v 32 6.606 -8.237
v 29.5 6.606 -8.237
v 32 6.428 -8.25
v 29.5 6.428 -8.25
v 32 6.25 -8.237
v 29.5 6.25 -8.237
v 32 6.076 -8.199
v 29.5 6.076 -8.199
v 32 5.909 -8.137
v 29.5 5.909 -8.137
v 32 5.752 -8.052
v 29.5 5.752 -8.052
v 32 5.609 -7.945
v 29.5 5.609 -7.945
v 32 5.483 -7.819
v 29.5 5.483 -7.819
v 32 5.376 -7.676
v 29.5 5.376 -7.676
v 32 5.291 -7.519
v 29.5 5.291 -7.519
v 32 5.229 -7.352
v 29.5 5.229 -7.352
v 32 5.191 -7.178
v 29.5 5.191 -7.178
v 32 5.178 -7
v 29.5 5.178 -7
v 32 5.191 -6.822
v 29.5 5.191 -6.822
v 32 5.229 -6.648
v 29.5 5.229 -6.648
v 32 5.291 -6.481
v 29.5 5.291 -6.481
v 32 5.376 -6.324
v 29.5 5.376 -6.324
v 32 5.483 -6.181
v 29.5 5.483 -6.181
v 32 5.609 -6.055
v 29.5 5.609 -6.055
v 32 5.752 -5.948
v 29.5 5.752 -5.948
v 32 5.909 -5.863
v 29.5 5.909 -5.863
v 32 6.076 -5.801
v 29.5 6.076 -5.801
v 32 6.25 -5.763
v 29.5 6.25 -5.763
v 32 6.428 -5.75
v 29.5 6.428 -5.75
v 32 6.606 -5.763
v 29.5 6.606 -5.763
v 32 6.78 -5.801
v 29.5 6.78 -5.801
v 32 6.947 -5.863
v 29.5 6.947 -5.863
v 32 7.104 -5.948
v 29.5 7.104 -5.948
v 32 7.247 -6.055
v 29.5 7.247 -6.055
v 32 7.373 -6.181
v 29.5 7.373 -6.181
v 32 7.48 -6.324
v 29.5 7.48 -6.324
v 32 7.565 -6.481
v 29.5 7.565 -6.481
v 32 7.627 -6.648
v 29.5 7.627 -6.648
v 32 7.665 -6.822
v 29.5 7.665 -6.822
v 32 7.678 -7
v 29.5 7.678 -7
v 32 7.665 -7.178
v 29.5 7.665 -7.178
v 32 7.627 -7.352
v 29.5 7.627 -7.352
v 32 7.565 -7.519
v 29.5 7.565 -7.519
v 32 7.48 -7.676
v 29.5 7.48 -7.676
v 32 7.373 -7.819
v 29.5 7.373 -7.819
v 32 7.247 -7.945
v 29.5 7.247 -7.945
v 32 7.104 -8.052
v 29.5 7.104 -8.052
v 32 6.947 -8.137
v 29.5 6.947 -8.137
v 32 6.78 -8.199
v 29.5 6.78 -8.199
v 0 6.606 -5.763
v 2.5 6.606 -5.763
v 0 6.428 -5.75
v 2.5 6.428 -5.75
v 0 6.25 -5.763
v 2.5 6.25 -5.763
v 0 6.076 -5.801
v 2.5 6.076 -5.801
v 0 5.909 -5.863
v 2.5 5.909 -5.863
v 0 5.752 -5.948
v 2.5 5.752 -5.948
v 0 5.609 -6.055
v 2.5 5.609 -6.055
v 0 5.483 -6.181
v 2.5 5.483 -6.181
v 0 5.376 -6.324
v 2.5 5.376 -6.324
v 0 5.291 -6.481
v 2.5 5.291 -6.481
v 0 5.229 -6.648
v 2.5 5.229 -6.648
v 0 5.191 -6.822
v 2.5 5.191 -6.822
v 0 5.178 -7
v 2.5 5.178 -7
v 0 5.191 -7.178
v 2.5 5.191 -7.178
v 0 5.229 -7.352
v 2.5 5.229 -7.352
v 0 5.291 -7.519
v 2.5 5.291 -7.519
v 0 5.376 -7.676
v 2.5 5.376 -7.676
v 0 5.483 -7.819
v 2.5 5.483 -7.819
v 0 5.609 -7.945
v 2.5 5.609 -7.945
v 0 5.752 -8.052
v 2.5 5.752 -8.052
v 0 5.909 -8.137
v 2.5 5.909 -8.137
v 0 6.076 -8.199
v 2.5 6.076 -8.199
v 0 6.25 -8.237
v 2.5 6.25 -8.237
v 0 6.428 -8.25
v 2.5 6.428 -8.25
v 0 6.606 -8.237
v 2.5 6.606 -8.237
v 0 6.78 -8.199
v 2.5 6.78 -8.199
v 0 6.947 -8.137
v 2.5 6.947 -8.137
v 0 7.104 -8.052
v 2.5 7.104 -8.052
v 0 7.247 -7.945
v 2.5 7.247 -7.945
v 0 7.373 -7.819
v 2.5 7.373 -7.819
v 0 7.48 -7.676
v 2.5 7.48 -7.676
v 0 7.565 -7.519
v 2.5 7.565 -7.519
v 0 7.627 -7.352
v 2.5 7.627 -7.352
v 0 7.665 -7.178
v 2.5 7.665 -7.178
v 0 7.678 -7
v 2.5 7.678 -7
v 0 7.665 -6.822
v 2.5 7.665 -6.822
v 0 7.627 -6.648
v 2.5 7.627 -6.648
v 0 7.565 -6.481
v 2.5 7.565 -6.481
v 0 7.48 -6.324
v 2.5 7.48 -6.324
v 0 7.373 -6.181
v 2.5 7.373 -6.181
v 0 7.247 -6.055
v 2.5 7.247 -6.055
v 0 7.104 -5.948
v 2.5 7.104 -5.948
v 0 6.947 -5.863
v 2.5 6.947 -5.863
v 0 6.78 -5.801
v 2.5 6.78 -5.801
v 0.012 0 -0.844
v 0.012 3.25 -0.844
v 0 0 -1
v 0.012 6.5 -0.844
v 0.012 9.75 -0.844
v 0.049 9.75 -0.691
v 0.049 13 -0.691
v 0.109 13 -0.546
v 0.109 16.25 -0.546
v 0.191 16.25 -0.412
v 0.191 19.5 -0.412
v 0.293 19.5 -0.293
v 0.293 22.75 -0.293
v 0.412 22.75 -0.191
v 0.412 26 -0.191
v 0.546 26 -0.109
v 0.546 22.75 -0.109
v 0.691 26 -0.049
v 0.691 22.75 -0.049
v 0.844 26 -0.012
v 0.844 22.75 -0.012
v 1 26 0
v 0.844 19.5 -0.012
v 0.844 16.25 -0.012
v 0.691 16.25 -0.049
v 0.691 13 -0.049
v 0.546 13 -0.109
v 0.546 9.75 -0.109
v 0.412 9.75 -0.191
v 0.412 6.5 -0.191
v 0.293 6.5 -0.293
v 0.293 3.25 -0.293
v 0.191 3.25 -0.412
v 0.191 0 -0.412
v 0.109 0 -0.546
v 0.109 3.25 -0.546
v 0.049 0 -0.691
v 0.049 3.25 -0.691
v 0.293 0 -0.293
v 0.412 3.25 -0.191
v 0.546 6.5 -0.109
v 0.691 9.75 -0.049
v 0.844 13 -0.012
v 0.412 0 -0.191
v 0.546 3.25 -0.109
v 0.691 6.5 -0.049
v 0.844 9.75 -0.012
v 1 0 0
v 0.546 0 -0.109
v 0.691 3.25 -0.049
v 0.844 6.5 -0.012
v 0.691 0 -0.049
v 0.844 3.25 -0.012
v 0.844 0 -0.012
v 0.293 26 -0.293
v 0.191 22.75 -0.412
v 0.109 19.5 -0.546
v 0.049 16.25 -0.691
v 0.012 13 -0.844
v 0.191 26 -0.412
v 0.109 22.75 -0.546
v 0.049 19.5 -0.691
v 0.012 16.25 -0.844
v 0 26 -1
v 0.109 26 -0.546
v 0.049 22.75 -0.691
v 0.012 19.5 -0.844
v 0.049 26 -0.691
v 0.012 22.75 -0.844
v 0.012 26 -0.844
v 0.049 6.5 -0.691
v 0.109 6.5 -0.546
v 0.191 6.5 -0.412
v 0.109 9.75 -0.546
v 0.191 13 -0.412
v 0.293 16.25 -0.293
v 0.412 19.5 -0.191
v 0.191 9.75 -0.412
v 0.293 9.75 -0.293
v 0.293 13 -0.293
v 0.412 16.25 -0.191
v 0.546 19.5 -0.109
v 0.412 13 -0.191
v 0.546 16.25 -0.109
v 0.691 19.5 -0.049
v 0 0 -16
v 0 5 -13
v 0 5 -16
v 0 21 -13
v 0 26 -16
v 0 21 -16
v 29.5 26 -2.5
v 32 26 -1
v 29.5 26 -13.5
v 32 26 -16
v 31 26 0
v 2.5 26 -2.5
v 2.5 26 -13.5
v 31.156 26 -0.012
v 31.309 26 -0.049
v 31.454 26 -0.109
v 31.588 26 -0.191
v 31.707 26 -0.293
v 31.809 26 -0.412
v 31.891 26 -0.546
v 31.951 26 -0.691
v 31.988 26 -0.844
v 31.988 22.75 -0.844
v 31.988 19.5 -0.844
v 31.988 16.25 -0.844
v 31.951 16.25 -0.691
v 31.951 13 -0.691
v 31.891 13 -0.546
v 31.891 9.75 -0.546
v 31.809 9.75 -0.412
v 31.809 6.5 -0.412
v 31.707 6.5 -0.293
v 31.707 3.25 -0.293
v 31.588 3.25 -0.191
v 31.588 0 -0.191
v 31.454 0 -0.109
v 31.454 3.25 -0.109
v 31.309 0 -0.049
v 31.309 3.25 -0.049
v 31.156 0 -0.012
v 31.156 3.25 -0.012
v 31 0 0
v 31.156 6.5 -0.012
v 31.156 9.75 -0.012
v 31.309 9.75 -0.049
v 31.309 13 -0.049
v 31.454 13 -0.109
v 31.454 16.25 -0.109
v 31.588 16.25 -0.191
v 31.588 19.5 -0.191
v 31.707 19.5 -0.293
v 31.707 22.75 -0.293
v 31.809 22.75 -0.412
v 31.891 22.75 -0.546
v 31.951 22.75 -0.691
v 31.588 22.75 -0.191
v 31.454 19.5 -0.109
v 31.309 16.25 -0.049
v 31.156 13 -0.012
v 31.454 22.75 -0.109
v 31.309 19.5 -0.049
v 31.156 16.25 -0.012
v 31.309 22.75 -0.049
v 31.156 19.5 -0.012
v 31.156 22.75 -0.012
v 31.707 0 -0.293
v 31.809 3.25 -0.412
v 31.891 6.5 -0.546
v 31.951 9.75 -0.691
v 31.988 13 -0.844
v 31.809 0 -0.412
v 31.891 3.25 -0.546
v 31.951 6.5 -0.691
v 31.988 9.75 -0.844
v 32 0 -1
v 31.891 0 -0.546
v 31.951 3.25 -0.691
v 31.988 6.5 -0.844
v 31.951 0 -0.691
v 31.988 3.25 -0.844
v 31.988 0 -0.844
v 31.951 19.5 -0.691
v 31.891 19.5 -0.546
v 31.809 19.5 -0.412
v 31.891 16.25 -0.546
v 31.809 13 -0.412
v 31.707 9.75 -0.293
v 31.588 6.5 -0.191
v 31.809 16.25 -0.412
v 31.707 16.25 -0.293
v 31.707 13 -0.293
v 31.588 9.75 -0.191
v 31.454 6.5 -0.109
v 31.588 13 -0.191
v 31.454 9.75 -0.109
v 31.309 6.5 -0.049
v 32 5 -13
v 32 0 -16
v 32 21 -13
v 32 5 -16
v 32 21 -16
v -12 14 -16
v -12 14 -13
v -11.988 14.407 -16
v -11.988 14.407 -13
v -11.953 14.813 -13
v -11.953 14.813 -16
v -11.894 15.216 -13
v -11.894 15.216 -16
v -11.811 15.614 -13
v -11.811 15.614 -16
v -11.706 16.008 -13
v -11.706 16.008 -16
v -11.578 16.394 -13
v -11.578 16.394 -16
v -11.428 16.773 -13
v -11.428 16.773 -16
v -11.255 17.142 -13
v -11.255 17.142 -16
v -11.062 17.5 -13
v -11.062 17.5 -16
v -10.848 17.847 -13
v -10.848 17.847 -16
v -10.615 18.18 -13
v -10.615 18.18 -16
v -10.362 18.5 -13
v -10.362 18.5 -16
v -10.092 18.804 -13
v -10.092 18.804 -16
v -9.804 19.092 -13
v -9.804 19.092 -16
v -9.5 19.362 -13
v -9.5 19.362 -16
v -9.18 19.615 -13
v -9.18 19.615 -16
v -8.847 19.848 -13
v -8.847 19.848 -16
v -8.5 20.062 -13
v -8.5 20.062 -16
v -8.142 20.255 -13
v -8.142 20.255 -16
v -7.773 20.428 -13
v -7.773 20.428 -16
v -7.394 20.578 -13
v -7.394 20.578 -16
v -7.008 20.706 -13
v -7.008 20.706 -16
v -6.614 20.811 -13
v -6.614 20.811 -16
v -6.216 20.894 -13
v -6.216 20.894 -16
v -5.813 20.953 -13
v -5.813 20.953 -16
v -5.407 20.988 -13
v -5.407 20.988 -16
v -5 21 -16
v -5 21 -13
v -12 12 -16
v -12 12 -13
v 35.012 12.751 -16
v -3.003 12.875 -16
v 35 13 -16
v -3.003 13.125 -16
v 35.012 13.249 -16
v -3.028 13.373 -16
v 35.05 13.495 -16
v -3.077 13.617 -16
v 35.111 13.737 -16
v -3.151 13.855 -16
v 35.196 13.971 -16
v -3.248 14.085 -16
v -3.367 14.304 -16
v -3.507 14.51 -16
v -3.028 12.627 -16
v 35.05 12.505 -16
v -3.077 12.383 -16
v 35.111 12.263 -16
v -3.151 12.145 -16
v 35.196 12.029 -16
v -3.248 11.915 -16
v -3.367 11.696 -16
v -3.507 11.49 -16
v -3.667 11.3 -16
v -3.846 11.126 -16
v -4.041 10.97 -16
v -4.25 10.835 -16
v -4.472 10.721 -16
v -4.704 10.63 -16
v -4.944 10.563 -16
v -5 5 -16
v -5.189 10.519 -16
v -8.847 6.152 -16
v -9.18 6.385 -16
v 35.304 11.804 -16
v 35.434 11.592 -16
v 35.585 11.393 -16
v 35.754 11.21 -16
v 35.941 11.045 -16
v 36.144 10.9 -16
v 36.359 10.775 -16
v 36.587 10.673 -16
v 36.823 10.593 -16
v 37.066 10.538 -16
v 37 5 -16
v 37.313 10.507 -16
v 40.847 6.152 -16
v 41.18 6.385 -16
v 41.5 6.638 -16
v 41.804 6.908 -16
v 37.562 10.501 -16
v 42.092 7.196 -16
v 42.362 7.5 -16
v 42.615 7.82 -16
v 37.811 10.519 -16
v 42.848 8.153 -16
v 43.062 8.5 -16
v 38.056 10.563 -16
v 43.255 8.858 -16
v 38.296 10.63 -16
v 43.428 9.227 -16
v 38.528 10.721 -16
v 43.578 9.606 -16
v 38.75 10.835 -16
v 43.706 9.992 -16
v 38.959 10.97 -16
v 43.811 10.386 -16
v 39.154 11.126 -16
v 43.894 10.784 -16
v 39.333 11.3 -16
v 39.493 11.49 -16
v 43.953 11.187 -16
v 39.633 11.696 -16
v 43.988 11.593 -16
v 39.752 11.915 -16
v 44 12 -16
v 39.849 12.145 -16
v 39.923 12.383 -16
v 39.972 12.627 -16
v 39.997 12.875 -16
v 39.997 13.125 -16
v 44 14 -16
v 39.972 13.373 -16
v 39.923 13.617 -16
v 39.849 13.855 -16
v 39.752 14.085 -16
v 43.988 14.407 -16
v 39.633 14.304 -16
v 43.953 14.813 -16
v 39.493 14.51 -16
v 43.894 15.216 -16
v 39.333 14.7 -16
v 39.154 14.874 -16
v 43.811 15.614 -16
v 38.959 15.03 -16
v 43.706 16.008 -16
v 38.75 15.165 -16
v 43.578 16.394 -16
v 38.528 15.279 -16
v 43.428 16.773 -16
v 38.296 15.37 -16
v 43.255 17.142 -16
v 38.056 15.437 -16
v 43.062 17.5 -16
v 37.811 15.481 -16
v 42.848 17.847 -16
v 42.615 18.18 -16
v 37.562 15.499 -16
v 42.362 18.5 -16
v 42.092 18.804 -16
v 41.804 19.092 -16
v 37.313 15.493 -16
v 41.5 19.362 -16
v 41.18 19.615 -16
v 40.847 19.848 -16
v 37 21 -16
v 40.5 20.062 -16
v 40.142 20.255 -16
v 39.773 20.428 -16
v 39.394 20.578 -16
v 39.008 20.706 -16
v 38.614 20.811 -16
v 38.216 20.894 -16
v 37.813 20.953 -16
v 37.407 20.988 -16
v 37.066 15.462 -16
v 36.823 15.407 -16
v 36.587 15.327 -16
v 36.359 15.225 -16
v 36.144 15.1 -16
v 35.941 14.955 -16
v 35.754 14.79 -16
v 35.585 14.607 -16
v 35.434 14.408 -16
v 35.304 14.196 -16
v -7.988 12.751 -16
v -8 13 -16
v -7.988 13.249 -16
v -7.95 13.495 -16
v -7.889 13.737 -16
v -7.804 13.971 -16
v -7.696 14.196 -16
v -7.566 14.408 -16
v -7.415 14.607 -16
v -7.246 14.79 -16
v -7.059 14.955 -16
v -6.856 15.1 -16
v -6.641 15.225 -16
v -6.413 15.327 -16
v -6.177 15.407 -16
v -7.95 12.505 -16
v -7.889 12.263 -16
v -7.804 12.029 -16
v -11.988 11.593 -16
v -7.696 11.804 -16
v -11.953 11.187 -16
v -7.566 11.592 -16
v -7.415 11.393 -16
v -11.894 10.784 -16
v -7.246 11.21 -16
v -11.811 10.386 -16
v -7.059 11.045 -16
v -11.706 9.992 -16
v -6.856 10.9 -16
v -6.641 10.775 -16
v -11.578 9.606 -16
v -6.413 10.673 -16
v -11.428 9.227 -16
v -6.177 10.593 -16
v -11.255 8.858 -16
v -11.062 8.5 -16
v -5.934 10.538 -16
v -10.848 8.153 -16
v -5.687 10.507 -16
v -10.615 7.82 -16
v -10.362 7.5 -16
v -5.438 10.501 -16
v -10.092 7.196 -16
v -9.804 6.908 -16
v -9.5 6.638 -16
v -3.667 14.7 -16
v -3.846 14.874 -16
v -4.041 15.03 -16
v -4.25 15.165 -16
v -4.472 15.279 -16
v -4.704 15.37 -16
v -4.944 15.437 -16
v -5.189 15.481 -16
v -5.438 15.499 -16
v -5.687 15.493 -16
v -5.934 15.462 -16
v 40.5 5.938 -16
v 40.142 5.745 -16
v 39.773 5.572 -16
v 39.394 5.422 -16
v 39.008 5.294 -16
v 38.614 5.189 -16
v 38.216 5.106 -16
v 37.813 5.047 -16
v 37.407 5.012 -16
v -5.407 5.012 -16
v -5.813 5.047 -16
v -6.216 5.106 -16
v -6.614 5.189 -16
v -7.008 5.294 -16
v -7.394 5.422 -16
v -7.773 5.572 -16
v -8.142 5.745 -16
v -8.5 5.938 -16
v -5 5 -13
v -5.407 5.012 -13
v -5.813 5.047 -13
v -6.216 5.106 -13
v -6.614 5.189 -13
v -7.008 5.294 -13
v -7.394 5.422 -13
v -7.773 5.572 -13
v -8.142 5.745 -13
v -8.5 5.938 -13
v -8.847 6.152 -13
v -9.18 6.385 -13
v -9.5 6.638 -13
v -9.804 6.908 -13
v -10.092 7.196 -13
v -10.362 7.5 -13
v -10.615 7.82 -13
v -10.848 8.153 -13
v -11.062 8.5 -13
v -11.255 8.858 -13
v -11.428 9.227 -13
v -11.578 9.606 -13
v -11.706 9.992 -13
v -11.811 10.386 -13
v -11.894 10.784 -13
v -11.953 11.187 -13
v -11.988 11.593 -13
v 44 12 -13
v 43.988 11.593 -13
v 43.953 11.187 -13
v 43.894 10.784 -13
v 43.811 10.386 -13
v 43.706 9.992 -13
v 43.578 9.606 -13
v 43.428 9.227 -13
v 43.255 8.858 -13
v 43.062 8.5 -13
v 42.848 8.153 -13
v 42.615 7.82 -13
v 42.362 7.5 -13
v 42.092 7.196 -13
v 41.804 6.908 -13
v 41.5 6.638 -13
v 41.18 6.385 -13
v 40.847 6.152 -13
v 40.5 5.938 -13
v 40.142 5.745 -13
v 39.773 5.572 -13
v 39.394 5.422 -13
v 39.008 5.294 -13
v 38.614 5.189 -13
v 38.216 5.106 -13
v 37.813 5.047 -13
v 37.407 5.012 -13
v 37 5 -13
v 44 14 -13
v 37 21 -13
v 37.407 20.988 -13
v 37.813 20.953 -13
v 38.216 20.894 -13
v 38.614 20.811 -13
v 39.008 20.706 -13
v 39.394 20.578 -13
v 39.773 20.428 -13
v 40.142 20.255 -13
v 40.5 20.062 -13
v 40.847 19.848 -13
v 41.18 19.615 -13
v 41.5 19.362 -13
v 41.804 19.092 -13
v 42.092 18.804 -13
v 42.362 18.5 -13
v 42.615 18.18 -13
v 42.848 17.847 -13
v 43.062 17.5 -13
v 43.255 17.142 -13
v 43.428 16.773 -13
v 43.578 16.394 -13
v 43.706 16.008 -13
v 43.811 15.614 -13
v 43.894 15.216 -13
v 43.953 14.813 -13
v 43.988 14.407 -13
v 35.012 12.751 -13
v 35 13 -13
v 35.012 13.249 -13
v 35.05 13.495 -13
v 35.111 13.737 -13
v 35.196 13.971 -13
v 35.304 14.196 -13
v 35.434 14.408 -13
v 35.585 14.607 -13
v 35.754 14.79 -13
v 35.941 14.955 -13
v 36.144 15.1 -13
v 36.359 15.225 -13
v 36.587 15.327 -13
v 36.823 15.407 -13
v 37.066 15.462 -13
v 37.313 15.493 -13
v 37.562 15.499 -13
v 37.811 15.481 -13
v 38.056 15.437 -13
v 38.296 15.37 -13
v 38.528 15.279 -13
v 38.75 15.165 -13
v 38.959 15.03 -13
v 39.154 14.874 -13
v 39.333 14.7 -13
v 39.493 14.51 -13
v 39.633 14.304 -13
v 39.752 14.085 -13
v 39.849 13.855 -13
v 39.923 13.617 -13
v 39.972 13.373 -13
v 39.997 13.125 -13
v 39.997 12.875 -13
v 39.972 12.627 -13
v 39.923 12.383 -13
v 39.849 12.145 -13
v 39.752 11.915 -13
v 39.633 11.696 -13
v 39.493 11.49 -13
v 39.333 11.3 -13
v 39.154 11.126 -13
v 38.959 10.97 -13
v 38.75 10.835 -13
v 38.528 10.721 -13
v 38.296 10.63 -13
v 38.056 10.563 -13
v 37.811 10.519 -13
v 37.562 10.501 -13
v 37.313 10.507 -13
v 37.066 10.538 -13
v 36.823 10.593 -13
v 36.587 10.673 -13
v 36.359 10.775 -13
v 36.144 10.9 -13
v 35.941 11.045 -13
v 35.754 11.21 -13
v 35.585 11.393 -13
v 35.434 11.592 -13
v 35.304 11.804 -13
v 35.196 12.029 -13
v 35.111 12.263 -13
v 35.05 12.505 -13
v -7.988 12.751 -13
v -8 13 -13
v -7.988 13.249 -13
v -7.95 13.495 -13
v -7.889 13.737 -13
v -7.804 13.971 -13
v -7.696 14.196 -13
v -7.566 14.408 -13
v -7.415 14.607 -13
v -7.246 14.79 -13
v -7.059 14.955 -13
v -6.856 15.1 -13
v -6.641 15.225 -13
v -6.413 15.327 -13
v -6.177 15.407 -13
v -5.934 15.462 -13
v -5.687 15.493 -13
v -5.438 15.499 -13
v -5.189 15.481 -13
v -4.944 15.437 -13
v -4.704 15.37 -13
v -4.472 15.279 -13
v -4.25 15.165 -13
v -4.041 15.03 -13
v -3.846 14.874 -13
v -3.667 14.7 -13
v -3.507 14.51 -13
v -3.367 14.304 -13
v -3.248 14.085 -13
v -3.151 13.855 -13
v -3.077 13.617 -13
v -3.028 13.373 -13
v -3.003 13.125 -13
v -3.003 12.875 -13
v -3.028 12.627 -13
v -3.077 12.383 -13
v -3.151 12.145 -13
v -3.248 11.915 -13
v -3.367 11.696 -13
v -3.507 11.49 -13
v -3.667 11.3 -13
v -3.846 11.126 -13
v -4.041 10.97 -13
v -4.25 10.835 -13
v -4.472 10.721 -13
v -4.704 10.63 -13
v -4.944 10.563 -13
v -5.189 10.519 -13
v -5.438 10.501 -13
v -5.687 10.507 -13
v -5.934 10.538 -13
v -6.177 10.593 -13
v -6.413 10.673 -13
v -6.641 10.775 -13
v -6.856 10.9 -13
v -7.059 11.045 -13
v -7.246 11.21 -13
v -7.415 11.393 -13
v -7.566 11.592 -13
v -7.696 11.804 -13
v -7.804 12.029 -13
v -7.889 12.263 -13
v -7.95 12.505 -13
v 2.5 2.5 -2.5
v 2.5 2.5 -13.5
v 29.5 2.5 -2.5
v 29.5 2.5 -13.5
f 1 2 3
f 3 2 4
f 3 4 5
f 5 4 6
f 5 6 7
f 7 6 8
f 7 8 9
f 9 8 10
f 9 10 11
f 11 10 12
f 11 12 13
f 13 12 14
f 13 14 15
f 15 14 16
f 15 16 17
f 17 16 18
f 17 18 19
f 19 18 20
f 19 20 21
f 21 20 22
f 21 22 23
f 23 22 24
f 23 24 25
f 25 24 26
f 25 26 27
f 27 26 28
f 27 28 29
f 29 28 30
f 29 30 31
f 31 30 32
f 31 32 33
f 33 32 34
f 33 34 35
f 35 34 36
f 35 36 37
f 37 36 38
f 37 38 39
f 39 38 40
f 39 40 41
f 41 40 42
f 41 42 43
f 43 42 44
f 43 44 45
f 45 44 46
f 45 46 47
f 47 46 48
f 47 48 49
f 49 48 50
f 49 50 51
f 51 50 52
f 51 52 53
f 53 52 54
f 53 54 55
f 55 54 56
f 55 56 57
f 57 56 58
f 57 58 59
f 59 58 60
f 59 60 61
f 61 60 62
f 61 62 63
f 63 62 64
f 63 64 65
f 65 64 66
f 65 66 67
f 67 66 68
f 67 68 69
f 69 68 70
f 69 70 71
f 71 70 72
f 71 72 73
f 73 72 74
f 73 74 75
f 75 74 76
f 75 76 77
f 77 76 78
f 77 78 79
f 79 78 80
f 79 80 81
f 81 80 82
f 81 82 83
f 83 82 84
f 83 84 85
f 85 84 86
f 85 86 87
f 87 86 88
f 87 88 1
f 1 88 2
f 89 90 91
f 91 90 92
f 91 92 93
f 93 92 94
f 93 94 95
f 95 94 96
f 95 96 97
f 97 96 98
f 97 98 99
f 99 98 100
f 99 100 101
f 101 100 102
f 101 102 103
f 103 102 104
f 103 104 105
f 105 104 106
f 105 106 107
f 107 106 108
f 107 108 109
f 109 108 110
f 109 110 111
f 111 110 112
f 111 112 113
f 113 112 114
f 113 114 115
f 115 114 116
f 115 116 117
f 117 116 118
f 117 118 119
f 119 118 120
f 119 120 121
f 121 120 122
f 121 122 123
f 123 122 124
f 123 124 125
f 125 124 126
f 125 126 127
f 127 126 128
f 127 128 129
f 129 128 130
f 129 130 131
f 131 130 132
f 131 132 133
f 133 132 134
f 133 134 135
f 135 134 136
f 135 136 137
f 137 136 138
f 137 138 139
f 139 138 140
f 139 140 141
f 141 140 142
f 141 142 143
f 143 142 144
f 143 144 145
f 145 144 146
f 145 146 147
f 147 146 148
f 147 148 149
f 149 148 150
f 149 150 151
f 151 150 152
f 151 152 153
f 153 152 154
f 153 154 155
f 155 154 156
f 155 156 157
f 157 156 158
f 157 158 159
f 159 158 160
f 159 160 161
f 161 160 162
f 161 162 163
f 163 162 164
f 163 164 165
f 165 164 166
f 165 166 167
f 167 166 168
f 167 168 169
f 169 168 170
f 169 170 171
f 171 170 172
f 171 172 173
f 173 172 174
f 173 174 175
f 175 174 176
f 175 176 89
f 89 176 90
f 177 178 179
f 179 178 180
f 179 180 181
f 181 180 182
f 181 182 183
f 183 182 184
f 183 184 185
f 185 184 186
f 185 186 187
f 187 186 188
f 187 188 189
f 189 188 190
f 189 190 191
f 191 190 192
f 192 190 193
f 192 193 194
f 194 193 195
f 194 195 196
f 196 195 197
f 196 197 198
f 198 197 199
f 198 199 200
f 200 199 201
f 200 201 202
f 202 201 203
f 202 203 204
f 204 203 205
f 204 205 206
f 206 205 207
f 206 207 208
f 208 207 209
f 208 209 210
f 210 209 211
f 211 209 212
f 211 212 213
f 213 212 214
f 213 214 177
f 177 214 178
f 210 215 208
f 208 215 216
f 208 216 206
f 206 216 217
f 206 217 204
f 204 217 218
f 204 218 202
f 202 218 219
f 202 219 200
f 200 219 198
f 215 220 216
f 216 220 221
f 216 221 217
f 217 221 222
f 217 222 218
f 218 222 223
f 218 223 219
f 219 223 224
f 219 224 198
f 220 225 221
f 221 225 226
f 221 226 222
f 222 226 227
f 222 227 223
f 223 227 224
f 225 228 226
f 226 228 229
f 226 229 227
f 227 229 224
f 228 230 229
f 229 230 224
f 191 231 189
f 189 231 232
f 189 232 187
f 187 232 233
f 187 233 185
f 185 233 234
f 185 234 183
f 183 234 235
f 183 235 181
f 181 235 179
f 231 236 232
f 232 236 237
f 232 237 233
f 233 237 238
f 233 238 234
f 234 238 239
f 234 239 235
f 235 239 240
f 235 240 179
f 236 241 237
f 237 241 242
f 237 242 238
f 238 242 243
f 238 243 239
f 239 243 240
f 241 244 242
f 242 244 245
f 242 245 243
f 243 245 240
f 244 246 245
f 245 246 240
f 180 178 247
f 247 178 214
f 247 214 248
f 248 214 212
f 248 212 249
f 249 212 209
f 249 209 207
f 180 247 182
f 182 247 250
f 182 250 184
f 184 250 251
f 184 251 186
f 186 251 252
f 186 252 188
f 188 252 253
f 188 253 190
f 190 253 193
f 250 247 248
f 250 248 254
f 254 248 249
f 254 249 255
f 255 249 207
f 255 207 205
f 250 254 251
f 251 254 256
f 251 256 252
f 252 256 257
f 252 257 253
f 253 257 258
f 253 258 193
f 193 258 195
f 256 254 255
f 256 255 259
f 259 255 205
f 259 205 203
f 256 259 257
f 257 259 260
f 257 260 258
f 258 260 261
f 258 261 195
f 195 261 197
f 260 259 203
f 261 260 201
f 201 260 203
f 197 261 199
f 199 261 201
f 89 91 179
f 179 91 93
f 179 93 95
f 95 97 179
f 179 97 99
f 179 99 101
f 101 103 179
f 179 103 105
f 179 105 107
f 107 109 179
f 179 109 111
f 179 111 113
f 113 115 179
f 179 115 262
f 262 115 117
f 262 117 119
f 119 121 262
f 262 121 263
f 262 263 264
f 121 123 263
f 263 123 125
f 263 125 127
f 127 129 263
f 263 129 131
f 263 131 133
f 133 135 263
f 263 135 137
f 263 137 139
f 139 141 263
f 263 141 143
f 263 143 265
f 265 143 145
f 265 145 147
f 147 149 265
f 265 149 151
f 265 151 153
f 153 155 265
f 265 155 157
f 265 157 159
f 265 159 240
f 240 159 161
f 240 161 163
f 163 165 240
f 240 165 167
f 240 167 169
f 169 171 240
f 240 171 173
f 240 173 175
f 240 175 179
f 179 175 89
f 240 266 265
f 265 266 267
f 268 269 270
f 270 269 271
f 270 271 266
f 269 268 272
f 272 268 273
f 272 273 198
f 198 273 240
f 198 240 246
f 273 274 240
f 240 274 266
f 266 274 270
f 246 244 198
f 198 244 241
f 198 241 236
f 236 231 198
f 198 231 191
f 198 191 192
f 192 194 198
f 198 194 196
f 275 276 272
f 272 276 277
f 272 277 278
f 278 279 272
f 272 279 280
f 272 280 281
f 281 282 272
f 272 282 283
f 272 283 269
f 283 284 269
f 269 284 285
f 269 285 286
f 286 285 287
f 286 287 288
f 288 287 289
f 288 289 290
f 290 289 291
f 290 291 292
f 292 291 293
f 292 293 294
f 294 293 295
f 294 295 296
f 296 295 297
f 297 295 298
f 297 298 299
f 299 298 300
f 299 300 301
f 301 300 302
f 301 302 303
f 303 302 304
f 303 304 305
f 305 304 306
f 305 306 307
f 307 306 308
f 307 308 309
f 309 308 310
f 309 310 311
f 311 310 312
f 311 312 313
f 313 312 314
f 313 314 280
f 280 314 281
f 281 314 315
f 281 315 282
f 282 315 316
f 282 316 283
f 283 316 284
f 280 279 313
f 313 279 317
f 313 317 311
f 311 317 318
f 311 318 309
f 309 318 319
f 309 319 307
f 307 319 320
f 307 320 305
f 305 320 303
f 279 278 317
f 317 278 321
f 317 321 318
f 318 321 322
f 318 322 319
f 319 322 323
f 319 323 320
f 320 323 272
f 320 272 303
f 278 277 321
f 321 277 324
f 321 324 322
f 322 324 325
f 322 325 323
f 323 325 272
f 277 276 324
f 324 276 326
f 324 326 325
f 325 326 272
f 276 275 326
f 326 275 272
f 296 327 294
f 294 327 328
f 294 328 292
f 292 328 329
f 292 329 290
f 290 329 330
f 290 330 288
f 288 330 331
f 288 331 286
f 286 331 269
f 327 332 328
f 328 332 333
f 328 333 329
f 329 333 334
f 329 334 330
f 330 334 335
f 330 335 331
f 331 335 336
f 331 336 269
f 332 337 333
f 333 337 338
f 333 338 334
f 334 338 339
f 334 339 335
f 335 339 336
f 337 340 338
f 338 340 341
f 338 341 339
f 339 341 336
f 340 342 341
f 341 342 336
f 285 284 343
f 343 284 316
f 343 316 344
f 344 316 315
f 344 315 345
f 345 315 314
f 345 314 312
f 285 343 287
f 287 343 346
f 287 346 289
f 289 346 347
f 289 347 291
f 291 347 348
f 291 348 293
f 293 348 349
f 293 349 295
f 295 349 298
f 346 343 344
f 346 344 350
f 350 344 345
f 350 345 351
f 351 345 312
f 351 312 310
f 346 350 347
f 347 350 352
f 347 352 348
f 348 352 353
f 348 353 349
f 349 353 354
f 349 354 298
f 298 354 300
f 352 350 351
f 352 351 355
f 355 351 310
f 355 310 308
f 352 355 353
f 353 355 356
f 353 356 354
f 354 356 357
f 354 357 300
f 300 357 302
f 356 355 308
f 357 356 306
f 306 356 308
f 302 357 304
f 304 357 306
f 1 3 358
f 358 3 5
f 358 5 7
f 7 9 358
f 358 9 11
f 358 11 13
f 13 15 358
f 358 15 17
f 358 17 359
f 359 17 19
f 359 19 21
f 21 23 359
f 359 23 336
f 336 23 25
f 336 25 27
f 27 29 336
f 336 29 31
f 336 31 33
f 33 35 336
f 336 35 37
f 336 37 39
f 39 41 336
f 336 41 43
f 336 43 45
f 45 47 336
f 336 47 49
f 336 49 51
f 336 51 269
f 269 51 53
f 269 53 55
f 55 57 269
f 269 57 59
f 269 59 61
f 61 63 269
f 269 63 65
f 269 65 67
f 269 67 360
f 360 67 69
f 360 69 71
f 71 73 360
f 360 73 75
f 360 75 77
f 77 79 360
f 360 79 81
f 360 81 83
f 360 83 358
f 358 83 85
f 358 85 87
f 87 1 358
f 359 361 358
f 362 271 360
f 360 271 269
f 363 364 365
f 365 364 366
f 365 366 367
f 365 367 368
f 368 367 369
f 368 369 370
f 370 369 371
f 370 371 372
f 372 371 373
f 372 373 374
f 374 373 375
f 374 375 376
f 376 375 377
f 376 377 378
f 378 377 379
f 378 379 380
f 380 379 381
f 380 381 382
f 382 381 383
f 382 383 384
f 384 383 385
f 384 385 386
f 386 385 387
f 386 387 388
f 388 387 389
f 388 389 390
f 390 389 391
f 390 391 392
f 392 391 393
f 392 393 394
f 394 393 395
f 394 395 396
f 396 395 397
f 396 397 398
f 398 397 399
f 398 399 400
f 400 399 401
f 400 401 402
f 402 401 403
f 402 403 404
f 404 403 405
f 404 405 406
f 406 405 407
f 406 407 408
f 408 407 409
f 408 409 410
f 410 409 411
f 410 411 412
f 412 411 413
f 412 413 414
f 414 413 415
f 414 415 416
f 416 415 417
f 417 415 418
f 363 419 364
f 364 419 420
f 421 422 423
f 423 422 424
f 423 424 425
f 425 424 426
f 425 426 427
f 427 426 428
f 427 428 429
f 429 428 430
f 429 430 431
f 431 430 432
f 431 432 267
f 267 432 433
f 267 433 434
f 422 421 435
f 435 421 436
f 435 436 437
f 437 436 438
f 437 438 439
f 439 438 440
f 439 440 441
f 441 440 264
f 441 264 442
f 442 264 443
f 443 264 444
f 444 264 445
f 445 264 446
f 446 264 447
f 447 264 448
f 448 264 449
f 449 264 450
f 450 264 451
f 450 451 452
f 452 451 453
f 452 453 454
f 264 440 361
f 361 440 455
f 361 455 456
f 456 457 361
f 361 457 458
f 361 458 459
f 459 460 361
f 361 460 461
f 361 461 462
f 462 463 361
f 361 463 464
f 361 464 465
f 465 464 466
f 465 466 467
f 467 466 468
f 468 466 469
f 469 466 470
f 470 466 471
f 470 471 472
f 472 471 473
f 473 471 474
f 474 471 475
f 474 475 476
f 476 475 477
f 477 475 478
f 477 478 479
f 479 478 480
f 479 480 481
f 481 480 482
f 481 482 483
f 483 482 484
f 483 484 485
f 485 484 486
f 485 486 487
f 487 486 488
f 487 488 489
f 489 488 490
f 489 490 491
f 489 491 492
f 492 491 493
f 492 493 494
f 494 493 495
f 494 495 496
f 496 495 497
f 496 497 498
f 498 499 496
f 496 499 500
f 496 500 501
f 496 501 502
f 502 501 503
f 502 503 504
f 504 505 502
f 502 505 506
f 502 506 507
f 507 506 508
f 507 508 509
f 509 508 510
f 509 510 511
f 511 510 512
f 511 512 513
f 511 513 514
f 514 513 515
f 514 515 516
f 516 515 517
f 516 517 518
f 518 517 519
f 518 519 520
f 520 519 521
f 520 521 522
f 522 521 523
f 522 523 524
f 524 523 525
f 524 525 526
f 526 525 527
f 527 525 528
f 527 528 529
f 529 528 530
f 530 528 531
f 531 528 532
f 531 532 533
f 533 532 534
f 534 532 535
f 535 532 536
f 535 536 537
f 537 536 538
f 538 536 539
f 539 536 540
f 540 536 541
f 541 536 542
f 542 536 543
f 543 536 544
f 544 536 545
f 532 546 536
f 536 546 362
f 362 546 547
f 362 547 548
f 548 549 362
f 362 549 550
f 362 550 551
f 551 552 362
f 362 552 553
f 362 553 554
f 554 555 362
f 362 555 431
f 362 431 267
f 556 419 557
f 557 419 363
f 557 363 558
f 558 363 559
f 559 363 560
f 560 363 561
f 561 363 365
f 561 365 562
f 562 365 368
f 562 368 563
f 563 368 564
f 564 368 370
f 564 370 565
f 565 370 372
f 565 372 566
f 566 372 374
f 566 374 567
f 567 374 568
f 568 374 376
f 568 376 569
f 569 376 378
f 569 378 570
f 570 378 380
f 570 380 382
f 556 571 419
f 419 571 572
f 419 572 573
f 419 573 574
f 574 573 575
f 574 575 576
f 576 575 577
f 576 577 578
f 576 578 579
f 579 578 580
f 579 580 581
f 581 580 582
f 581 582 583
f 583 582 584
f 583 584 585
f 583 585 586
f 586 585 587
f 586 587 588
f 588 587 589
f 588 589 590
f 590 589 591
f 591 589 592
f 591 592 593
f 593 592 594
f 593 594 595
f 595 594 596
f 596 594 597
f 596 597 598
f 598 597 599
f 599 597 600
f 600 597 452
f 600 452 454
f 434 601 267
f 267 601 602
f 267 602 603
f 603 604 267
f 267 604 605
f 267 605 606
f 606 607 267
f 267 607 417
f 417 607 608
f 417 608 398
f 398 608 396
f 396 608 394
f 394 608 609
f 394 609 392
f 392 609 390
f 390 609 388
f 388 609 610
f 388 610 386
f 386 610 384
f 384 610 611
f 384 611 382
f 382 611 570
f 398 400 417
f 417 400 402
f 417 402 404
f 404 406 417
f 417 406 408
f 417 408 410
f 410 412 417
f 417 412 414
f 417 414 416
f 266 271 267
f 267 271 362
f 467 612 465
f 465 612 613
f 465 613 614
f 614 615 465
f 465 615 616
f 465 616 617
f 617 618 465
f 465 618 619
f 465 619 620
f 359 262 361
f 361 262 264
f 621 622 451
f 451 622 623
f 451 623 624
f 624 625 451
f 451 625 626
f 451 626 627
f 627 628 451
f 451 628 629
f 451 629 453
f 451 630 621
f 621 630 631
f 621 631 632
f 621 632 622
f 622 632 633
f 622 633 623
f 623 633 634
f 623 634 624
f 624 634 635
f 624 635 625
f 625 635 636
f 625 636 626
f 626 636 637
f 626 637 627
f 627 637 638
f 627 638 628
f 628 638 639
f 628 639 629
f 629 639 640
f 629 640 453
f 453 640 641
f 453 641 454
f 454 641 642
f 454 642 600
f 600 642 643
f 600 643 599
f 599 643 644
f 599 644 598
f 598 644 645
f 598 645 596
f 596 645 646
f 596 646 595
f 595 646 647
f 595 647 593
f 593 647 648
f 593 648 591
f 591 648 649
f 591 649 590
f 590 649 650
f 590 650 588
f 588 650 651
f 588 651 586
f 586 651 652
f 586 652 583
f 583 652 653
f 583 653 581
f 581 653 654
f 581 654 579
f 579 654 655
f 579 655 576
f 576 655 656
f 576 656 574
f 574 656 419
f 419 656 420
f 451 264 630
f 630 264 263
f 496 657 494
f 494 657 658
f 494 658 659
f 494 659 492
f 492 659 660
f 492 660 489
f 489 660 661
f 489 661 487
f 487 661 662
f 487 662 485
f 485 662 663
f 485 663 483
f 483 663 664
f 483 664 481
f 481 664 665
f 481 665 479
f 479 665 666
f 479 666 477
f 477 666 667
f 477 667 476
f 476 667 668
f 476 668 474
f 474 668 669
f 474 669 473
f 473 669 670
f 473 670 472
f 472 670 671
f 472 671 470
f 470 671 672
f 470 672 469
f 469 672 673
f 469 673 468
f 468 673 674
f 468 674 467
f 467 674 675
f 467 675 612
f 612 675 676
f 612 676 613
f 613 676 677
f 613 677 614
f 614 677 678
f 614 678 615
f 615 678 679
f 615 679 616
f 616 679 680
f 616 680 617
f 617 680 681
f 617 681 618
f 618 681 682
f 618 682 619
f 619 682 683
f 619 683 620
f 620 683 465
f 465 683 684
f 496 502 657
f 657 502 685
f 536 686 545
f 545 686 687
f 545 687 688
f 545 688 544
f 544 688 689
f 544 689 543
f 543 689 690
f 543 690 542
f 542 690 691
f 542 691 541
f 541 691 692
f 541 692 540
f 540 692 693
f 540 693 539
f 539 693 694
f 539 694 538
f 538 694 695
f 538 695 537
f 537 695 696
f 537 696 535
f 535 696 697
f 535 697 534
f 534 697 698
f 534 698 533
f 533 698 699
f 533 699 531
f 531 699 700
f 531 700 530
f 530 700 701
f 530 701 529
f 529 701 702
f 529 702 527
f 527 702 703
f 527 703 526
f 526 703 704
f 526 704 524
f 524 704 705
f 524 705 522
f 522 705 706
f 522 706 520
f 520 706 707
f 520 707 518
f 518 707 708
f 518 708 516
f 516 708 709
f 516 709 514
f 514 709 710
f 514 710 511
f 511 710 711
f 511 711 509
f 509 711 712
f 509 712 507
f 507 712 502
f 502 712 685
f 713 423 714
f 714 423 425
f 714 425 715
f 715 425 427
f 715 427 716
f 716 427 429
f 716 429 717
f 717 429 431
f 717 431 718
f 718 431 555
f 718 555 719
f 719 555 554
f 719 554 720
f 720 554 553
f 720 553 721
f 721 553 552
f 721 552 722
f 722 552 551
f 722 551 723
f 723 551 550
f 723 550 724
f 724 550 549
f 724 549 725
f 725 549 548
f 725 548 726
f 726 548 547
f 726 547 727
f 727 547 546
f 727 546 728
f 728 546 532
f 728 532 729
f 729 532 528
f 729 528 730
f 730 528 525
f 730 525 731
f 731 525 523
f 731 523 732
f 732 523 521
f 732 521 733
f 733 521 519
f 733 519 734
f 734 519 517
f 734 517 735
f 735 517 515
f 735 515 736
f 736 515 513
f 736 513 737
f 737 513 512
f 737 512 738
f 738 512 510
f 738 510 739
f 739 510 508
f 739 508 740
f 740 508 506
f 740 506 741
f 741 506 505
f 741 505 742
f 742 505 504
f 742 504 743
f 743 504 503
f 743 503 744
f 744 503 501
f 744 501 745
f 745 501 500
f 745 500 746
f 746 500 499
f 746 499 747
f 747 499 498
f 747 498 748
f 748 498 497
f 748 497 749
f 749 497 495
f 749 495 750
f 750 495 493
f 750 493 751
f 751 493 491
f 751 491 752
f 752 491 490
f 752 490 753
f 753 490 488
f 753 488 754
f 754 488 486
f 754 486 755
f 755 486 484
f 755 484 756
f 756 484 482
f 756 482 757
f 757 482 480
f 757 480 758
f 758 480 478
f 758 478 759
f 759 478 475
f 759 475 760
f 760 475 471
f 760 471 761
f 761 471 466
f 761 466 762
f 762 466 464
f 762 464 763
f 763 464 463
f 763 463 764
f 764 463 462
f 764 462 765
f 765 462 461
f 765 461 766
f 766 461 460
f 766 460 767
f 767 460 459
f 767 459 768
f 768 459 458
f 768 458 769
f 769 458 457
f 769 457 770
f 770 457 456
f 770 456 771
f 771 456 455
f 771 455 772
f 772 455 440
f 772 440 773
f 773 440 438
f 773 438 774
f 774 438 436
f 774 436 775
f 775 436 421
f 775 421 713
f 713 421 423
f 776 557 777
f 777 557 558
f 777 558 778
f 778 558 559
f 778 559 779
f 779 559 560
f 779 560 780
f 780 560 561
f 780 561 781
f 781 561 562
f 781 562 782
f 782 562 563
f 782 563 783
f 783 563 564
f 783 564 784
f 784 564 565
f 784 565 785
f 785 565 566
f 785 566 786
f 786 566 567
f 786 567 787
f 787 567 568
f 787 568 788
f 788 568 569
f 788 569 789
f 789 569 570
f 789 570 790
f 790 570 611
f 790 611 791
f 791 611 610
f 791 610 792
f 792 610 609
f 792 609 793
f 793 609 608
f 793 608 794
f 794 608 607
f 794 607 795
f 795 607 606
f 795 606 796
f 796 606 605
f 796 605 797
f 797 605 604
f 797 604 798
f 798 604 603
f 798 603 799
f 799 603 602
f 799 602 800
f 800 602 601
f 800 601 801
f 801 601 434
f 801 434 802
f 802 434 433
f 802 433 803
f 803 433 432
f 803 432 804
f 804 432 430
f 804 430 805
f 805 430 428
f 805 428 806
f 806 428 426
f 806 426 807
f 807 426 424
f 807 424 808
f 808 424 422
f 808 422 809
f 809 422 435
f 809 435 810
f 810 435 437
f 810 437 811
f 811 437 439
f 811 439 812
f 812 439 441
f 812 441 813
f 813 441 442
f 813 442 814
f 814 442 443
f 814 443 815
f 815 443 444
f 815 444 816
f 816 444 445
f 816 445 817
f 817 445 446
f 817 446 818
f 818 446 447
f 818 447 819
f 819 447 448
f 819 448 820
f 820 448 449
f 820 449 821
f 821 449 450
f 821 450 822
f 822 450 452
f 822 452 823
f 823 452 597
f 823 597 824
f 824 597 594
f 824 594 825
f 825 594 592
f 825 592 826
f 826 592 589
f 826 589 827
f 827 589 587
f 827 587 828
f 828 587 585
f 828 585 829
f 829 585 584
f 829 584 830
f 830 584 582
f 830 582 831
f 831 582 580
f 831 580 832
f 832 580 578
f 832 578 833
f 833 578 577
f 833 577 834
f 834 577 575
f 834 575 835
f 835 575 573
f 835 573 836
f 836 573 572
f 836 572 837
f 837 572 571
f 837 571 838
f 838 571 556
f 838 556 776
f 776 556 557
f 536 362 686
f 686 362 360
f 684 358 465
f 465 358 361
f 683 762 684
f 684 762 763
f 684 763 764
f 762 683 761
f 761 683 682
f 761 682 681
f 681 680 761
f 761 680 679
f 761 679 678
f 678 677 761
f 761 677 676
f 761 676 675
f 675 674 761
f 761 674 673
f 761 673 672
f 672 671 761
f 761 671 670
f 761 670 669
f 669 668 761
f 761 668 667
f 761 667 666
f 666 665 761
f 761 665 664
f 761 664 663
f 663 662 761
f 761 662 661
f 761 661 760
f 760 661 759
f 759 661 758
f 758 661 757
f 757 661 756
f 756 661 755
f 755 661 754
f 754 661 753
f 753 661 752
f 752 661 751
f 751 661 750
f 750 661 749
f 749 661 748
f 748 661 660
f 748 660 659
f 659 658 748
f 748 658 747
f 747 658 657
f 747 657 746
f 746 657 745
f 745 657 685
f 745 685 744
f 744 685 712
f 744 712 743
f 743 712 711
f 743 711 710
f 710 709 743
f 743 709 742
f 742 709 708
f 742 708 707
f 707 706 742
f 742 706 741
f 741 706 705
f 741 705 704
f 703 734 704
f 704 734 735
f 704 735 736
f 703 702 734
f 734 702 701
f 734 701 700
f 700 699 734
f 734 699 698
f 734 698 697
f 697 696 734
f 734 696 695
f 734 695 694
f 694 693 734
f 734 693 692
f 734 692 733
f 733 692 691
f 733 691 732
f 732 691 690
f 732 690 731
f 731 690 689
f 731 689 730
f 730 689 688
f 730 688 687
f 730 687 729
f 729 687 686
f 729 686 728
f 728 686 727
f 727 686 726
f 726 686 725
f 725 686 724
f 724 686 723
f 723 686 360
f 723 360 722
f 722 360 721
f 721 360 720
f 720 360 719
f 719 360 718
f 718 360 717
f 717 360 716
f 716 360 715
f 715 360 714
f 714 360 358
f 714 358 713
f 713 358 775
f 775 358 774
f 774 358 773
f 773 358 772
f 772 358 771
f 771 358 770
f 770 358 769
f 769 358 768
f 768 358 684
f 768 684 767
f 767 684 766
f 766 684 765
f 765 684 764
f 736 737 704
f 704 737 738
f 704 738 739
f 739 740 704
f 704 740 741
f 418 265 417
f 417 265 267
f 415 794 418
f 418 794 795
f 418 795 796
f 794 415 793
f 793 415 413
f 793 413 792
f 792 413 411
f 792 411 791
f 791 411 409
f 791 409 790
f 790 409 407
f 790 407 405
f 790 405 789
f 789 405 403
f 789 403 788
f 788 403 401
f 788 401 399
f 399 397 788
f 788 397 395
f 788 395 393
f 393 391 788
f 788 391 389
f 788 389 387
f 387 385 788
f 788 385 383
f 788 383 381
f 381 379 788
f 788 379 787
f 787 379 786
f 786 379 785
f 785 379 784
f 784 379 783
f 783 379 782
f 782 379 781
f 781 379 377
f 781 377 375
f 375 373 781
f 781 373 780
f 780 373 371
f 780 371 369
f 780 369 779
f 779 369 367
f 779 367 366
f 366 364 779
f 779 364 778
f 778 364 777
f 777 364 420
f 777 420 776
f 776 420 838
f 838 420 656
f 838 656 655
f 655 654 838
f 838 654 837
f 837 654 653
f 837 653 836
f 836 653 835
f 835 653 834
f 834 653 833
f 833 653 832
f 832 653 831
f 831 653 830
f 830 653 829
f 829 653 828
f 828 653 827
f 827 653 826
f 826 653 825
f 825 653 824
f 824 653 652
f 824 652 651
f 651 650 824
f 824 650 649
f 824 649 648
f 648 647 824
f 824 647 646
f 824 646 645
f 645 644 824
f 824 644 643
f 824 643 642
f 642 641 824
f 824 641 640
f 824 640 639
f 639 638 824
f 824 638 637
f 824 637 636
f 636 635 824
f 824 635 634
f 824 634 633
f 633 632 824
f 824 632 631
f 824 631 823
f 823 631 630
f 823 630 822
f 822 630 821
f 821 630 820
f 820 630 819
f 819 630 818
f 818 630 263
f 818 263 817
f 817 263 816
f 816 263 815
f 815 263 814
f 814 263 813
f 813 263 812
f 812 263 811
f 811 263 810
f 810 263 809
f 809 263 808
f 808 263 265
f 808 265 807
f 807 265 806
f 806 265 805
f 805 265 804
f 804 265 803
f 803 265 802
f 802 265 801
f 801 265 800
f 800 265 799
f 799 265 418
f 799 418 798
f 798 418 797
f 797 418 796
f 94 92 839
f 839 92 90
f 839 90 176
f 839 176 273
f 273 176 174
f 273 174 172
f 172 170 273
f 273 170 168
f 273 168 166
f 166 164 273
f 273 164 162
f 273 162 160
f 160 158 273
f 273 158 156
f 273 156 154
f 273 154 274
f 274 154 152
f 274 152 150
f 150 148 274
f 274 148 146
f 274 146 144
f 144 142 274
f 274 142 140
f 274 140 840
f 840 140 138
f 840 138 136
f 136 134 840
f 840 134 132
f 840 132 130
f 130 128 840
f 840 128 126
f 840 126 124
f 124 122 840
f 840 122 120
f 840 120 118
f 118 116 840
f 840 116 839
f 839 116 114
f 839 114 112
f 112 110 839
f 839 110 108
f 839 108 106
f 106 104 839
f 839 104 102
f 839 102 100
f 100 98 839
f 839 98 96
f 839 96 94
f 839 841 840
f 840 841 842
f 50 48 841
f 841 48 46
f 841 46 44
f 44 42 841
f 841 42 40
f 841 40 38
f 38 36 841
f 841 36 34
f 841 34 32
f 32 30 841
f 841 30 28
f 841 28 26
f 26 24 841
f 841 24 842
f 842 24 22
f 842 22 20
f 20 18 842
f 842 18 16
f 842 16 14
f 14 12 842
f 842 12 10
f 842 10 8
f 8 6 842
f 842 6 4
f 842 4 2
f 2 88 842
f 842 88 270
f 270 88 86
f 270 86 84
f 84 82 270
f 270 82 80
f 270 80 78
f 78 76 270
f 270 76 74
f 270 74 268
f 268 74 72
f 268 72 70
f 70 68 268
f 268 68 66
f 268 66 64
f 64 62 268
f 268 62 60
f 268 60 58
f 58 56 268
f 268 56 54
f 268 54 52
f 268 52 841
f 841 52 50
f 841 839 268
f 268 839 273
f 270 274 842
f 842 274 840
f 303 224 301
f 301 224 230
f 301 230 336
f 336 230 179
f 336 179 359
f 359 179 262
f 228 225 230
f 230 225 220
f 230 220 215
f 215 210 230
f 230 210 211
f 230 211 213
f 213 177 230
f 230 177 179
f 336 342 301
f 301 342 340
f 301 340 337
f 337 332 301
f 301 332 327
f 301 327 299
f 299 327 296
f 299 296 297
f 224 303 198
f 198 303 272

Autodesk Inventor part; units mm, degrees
ref_plane "YZ Plane" through (0, 0, 0) normal (1, 0, 0) x (0, 1, 0)
ref_plane "XZ Plane" through (0, 0, 0) normal (0, 1, 0) x (-1, 0, 0)
ref_plane "XY Plane" through (0, 0, 0) normal (0, 0, 1) x (1, 0, 0)
sketch "Esboço1" plane through (0, 0, 0) normal (0, 0, 1) x (1, 0, 0)
  line L0 (0, 0) -> (32, 0)
  line L1 (32, 0) -> (32, 26)
  line L2 (32, 26) -> (0, 26)
  line L3 (0, 26) -> (0, 0)
  dimension "d0" = 32
  dimension "d1" = 26
extrude "Extrusão1" add sketch "Esboço1" against normal blind 16
shell "Casca1" thickness 2.5 removed faces 1 at (21.3333, 26, -10.6667)
sketch "Esboço2" plane through (0, 0, -16) normal (0, 0, -1) x (-1, 0, 0)
  line L0 (0, 0) -> (0, 26) projected
  line L1 (0, 21) -> (12, 21)
  line L2 (12, 21) -> (12, 5)
  line L3 (12, 5) -> (0, 5)
  line L4 (0, 5) -> (0, 21)
  line L5 (-32, 0) -> (0, 0) projected
  line L6 (-32, 26) -> (-32, 0) projected
  line L7 (-32, 21) -> (-44, 21)
  line L8 (-44, 21) -> (-44, 5)
  line L9 (-44, 5) -> (-32, 5)
  line L10 (-32, 5) -> (-32, 21)
  point P0 (-32, 5)
  point P1 (0, 5)
  dimension "d5" = 12
  dimension "d6" = 16
  dimension "d7" = 5
  dimension "d8" = 12
  dimension "d18" = 16
  dimension "d19" = 5
extrude "Extrusão2" add sketch "Esboço2" against normal blind 3
sketch "Esboço3" plane through (0, 0, -16) normal (0, 0, -1) x (-1, 0, 0)
  circle A0 centre (5.5, 13) radius 2.5
  line L0 (12, 5) -> (12, 21) projected
  circle A1 centre (-37.5, 13) radius 2.5
  line L1 (-44, 21) -> (-44, 5) projected
  point P0 (0, 0)
  dimension "d11" = 5
  dimension "d12" = 6.5
  dimension "d13" = 5
  dimension "d14" = 6.5
extrude "Extrusão3" cut sketch "Esboço3" against normal blind 3
fillet "Arredondamento1" radius 7 4 edges at (44, 21, -14.5) (44, 5, -14.5) (-12, 5, -14.5) (-12, 21, -14.5)
fillet "Arredondamento2" radius 1 2 edges at (32, 13, 0) (0, 13, 0)
sketch "Esboço4" plane through (32, 5, -13) normal (1, 0, 0) x (0, 0, -1)
  circle A0 centre (-6, 1.428) radius 1.25
  line L0 (0, 0) -> (0, 7) projected
  point P0 (-13, -5)
  dimension "d21" = 2.5
  dimension "d22" = 6
extrude "Extrusão4" cut sketch "Esboço4" against normal blind 36.75
properties part number "caixa do fusivel"
